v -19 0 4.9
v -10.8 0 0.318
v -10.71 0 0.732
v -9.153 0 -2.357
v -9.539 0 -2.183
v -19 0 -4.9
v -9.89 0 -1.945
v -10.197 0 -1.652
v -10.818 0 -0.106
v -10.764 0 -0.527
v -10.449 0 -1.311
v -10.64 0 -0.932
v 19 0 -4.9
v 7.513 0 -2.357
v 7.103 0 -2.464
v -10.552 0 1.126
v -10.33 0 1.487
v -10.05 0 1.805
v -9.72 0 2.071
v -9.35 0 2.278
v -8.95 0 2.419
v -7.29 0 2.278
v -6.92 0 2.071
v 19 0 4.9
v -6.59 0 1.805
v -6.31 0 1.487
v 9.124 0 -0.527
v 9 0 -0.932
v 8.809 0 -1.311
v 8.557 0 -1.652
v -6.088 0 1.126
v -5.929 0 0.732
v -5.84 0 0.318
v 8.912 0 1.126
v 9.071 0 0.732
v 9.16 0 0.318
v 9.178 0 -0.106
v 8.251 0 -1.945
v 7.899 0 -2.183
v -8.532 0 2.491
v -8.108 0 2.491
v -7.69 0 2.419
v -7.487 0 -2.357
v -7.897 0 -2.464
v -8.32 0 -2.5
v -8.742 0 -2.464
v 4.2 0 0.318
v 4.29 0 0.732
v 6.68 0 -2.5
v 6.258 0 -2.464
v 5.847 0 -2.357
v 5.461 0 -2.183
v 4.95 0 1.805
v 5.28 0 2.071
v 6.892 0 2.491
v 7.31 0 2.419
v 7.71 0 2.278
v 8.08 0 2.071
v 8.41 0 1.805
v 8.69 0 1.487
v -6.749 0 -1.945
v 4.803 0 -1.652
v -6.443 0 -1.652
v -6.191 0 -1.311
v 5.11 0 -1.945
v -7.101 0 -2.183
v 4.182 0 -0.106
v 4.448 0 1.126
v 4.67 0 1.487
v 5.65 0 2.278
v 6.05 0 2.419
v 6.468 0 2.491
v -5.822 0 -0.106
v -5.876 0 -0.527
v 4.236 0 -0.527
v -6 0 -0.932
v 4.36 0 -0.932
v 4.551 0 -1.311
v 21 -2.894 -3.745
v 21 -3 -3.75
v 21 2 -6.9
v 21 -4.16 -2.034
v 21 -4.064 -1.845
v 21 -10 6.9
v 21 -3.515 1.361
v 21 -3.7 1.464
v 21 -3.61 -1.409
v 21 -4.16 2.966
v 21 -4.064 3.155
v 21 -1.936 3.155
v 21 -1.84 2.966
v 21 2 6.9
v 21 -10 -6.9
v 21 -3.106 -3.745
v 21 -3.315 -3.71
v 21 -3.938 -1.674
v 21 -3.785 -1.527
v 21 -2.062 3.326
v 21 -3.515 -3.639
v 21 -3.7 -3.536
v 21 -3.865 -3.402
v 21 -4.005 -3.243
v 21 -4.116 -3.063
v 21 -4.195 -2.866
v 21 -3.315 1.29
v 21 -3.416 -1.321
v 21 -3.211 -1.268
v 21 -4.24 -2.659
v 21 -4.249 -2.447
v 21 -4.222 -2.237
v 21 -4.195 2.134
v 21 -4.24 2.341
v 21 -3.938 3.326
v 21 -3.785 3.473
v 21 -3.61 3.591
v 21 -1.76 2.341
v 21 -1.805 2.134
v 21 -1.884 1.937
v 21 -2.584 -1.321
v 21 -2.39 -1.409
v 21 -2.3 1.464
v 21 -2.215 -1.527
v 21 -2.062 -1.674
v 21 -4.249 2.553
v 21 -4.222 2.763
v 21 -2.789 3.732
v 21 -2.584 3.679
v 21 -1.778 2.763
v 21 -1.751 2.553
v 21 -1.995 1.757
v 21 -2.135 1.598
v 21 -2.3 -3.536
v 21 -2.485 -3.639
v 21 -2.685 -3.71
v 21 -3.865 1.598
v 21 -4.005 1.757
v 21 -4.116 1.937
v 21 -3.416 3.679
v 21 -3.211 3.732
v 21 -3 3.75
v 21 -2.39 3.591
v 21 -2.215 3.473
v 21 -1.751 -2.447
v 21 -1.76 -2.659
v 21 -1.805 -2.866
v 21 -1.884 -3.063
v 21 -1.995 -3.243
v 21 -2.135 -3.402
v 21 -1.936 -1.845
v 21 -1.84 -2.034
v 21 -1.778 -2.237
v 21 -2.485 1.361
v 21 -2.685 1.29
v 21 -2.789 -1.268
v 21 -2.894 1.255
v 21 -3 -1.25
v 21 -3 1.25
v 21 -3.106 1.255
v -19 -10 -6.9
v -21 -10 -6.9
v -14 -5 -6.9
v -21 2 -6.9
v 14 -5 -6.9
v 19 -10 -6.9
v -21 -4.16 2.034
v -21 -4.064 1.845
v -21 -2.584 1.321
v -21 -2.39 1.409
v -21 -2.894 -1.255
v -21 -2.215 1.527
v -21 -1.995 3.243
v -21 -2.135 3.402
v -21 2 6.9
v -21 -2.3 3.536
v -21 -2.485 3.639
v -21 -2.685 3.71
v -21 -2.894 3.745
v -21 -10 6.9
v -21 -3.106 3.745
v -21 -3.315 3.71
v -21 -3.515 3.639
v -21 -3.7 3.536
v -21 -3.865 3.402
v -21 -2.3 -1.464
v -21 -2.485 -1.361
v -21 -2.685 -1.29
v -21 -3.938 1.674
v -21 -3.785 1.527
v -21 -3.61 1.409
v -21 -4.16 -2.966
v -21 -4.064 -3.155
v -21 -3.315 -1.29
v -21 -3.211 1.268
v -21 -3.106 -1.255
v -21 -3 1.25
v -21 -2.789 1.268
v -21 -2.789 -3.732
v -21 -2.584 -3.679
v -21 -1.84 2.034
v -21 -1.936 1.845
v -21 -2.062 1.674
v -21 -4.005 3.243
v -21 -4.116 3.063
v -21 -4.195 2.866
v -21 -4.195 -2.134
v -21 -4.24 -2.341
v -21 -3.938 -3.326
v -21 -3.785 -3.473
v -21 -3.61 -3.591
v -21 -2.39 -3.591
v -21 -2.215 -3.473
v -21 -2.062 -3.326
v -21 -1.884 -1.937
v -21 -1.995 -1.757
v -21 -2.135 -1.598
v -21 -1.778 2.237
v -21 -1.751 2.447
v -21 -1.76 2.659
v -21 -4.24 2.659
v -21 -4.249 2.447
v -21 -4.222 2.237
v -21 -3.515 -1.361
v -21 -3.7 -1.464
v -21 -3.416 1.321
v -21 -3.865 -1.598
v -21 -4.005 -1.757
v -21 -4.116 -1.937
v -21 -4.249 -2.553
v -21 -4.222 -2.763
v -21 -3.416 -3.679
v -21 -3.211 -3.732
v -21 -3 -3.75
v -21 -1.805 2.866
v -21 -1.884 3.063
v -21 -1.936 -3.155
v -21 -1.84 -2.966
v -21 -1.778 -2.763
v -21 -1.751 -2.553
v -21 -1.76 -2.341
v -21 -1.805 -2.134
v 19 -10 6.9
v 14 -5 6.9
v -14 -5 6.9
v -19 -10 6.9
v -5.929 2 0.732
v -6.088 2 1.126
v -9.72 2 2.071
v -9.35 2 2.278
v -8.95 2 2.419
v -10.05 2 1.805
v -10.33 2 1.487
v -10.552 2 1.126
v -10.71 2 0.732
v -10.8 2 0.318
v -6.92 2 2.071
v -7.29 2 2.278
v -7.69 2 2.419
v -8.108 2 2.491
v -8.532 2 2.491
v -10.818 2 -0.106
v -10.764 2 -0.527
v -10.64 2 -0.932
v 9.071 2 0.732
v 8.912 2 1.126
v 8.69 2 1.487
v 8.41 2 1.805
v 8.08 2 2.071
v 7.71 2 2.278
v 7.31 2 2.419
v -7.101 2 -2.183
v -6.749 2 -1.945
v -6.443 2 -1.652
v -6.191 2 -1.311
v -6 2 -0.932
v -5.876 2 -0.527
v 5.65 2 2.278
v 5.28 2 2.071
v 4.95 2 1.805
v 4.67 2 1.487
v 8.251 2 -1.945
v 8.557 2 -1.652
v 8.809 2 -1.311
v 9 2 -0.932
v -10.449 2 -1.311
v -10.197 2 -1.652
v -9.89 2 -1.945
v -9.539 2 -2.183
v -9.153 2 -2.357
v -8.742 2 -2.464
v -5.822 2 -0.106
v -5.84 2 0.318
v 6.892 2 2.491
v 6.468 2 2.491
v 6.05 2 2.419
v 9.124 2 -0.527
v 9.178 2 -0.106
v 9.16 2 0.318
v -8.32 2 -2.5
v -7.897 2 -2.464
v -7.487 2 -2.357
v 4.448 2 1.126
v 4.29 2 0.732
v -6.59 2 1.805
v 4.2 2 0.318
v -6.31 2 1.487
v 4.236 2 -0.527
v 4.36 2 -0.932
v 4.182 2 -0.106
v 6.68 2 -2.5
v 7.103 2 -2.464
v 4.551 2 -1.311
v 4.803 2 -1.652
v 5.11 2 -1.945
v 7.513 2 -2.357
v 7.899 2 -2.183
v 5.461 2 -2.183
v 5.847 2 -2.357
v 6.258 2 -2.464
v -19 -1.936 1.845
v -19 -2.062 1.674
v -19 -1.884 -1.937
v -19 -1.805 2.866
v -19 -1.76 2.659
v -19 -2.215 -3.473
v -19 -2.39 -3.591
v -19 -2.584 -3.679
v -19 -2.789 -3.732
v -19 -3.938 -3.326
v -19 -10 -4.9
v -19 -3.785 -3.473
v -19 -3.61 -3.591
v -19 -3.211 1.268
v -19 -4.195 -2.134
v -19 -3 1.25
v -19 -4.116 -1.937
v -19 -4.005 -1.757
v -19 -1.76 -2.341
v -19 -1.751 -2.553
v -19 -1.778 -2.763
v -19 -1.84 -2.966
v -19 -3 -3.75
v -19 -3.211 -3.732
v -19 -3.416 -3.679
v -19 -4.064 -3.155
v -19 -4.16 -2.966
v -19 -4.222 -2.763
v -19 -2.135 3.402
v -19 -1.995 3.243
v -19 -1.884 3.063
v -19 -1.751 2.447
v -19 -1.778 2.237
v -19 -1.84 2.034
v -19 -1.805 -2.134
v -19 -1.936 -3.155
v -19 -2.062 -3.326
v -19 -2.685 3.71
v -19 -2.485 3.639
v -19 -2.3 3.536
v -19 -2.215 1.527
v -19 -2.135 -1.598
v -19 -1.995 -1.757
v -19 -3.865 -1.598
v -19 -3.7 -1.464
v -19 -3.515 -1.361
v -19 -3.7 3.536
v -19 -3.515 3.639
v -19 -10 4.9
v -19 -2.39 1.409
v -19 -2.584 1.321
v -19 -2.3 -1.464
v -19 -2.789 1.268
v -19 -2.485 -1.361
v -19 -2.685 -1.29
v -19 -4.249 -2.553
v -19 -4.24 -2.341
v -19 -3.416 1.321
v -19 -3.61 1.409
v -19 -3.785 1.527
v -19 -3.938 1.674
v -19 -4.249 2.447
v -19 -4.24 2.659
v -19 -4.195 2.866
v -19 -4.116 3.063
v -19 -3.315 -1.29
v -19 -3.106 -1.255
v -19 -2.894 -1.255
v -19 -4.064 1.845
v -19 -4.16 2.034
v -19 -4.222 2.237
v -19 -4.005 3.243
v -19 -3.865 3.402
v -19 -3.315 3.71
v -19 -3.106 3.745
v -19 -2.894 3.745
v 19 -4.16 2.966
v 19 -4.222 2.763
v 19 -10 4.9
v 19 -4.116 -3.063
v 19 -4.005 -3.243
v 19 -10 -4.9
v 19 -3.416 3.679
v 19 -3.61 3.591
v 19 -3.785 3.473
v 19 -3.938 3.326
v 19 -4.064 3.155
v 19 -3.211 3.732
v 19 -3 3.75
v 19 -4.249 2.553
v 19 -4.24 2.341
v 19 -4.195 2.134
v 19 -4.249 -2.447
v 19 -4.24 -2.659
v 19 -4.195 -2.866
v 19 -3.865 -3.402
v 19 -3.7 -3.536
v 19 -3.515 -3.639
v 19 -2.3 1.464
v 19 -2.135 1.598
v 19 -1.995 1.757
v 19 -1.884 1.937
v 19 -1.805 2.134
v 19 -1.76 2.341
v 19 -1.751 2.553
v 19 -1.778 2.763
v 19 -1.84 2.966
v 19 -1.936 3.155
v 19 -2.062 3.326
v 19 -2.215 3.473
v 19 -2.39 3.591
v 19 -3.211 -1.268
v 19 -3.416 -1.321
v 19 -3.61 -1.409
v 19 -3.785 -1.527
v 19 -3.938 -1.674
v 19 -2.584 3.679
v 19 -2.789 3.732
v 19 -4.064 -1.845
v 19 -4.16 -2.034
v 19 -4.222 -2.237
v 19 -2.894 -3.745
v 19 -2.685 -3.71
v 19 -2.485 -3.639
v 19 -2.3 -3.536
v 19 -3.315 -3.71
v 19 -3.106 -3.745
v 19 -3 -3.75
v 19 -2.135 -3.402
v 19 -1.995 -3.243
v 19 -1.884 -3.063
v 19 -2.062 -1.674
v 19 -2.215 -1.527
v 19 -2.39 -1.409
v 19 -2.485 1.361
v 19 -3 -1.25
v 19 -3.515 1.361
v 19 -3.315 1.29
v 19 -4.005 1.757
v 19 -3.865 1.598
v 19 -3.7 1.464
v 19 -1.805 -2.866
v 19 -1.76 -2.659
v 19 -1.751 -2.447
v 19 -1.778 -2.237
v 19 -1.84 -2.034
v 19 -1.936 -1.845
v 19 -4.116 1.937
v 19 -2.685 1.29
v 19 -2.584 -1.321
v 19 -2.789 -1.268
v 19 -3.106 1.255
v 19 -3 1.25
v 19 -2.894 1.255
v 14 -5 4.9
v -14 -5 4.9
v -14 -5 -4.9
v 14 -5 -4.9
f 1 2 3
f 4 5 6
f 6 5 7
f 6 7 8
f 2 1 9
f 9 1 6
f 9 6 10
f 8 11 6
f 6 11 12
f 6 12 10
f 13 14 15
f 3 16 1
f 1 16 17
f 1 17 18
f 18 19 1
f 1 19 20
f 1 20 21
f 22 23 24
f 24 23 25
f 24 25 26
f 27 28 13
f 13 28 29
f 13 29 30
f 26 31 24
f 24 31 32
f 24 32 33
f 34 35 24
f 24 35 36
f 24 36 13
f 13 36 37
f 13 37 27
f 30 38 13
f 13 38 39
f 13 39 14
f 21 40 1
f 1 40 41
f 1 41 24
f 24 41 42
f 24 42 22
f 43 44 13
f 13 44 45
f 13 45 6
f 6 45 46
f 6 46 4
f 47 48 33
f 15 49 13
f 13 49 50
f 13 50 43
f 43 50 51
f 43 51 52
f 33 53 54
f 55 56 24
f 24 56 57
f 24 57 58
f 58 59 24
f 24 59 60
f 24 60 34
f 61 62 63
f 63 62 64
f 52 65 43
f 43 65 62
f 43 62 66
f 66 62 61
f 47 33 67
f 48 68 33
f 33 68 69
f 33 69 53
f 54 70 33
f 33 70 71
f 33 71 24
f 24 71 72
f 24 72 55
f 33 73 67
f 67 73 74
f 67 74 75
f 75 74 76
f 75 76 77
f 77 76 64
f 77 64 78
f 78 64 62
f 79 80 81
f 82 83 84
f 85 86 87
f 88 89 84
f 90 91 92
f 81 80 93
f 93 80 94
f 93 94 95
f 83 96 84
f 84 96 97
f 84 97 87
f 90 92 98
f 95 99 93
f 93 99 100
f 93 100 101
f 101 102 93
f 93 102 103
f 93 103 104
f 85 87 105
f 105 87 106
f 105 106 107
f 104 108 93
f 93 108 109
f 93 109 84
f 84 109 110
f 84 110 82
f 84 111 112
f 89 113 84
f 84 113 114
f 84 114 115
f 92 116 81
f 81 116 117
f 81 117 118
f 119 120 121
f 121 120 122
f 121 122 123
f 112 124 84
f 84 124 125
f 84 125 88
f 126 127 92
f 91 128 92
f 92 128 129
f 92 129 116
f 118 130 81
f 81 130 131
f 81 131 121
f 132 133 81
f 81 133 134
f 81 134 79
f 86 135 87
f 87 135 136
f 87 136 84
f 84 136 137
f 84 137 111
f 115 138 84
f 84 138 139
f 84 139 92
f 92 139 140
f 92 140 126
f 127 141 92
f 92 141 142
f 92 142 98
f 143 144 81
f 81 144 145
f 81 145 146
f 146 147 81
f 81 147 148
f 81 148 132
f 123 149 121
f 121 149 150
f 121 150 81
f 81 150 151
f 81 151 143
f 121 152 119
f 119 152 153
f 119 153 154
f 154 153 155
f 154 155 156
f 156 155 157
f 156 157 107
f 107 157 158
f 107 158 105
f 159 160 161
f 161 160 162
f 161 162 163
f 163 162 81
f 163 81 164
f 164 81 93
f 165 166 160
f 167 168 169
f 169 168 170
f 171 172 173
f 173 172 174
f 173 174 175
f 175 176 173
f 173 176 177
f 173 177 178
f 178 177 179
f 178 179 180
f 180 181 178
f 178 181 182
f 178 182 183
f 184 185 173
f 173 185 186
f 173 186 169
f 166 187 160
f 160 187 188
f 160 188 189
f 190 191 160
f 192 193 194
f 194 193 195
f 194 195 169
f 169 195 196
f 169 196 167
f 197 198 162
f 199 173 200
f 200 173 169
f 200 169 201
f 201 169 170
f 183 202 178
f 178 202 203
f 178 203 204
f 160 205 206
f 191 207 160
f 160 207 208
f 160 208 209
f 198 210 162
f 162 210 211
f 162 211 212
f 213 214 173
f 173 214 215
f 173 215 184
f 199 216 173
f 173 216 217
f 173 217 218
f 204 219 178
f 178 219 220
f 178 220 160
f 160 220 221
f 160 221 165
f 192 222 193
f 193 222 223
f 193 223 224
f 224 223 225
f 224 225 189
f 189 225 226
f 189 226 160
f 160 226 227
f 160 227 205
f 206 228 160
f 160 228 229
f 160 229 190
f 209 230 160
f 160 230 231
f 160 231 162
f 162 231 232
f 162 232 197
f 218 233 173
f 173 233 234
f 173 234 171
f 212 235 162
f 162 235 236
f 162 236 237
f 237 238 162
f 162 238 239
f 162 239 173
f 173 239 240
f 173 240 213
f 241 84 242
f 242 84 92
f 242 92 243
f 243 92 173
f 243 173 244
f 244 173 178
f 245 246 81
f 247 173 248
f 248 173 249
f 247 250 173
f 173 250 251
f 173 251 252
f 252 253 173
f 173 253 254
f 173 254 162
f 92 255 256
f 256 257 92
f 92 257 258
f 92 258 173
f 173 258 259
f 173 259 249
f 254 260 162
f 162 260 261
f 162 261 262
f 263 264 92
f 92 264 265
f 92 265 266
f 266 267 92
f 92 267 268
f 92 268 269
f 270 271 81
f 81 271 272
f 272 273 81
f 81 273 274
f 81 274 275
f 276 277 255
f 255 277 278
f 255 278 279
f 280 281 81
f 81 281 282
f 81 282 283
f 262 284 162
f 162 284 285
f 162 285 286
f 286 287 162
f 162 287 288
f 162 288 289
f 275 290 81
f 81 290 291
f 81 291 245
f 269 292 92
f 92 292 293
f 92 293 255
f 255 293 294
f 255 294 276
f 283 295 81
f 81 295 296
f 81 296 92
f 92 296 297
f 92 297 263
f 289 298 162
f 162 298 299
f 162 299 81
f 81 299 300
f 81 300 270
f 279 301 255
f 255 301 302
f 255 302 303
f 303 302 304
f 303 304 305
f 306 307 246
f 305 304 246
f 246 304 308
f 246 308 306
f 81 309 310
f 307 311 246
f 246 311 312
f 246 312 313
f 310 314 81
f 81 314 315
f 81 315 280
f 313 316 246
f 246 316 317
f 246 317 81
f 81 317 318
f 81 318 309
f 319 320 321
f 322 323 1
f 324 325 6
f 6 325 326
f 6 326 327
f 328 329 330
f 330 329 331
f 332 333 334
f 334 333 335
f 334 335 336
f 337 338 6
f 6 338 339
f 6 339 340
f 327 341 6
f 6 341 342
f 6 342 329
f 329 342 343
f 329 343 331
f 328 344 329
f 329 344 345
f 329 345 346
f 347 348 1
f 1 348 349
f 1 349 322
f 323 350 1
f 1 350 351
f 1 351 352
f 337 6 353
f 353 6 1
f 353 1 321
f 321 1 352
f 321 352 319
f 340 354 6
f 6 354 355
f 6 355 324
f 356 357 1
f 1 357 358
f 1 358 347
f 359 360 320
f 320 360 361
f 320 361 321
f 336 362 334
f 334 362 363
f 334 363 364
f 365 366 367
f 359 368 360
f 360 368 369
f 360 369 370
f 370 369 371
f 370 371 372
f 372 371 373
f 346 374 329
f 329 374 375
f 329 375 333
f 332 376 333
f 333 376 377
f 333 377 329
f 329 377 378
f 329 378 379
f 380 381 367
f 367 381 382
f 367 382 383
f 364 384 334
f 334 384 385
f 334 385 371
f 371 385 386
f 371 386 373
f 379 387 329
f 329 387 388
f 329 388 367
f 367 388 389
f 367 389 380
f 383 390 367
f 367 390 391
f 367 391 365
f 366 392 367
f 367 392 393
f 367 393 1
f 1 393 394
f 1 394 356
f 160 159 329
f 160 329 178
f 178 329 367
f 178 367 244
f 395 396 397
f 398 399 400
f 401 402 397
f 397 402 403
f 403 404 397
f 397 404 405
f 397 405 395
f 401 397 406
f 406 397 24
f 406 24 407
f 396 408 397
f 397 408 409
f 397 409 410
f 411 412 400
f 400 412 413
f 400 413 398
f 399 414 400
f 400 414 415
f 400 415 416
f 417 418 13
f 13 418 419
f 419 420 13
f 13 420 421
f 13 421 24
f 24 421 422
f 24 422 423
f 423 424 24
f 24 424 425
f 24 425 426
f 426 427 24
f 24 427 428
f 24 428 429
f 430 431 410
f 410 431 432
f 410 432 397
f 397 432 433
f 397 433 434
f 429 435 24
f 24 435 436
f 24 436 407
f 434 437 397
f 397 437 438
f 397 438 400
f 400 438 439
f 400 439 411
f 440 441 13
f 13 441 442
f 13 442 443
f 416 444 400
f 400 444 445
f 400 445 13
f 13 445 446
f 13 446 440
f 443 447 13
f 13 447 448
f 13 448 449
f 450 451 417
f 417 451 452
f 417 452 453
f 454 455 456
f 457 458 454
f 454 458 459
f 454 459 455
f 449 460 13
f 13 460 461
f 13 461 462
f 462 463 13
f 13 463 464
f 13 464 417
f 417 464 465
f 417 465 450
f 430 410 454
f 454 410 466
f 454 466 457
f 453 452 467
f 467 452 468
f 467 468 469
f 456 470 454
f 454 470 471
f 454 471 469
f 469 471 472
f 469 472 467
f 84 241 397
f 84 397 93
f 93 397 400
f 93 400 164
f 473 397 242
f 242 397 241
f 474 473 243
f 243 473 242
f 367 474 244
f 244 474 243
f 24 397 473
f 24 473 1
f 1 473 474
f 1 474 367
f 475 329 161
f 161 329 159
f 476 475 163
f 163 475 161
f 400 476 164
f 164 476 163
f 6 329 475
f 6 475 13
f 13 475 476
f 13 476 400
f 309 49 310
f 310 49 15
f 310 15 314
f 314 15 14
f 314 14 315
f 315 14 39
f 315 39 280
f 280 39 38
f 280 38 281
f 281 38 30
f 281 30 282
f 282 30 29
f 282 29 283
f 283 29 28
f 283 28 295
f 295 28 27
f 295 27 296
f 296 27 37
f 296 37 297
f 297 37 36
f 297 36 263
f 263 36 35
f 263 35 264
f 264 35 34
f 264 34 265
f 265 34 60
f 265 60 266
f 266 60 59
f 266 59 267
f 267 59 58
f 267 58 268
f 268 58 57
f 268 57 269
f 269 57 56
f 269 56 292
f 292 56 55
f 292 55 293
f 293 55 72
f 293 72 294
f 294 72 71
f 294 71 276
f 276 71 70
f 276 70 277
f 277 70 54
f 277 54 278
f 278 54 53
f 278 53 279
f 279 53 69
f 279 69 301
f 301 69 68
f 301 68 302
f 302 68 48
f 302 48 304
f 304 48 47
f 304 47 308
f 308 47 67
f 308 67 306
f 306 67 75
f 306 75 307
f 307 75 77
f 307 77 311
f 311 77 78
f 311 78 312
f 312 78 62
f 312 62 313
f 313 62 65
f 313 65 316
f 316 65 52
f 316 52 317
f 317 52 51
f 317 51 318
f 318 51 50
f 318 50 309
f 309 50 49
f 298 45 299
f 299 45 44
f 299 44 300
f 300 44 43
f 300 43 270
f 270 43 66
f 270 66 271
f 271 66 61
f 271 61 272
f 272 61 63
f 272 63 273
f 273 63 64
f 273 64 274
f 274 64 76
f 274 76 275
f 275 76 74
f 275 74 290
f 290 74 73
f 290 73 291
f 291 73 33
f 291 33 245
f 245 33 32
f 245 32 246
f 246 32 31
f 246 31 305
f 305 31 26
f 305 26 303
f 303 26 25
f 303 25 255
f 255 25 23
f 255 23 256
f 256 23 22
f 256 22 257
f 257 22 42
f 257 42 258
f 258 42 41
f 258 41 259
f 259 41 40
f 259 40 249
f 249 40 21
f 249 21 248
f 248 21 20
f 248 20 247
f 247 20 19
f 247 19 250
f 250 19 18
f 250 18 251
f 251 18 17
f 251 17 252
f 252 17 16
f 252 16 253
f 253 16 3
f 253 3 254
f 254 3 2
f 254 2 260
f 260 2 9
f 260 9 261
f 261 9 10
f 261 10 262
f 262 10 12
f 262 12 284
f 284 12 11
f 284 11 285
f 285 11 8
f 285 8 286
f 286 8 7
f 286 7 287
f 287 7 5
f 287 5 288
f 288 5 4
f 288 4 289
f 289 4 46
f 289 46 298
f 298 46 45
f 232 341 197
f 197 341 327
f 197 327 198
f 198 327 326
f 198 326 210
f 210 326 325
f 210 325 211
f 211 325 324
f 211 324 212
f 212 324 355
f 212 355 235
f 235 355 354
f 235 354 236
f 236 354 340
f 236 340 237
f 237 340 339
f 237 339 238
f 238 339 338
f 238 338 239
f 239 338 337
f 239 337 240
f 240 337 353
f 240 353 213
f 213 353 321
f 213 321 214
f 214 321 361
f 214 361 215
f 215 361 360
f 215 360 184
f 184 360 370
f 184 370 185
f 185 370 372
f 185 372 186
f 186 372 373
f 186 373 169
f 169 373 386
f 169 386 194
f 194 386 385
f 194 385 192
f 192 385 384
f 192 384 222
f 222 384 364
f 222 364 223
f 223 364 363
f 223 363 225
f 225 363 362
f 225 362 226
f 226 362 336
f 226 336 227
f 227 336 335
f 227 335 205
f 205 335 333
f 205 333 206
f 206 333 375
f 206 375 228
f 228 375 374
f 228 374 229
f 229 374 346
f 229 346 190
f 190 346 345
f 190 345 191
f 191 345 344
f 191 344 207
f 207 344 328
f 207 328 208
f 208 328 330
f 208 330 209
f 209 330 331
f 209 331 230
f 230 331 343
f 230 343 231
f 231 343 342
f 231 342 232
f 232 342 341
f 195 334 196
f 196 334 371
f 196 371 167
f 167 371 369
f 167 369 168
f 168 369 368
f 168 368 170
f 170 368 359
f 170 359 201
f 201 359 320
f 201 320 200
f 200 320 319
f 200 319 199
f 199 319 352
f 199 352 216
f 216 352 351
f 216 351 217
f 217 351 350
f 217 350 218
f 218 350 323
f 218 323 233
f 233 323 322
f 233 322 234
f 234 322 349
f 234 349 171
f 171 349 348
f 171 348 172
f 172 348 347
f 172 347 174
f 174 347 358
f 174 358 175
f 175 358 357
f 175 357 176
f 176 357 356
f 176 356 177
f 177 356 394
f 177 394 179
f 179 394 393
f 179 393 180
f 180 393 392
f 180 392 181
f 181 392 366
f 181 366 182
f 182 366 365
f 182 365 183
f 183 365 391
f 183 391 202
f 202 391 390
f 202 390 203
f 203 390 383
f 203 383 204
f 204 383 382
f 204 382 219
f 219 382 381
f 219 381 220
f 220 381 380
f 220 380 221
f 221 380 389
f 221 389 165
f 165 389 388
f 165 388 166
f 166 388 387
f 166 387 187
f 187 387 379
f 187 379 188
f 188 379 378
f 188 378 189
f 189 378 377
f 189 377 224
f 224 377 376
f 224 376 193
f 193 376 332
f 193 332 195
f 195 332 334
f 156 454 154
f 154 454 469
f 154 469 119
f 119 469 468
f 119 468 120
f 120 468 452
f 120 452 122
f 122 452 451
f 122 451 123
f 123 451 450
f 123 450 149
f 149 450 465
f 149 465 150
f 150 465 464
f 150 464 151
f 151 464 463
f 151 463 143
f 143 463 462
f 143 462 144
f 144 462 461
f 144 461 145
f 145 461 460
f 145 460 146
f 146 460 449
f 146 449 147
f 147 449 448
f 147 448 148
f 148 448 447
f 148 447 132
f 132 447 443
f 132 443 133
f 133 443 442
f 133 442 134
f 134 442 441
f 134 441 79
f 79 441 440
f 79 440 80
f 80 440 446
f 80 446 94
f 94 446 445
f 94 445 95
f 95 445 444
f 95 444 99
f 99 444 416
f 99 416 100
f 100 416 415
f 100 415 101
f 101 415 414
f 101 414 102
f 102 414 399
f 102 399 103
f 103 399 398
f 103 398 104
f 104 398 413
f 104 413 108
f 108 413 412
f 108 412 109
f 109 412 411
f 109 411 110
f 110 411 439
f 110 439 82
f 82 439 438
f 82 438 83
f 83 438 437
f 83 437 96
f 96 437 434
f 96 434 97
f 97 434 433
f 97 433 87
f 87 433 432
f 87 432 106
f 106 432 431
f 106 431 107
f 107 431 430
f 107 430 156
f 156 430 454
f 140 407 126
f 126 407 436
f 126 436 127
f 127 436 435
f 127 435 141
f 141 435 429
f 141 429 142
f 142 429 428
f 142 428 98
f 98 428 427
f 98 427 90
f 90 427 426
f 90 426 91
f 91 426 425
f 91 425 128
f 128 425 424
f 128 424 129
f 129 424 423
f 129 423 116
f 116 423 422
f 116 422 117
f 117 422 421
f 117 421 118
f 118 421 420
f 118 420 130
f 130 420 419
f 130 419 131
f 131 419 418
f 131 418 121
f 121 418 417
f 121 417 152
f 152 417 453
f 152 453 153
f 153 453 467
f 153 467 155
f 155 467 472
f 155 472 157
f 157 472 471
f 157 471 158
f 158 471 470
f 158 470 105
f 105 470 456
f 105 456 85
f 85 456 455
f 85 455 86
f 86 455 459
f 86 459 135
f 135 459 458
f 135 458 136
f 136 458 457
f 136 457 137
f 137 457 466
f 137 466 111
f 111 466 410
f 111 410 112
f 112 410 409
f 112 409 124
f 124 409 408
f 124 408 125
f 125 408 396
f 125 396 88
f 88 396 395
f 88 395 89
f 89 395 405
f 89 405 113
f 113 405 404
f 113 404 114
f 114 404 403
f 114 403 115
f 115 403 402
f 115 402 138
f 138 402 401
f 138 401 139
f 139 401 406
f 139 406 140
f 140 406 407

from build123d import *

# Parameters (mm, degrees)
SKETCH2_W           = 42
SKETCH2_H           = 13.8
BOSS_EXTRUDE1_DEPTH = 2
SKETCH3_W           = 2
SKETCH3_H           = 13.8
BOSS_EXTRUDE2_DEPTH = 10
BOSS_EXTRUDE3_DEPTH = 2
SKETCH5_R           = 2.5
CUT_EXTRUDE1_DEPTH  = 2
SKETCH6_R           = 1.25
CUT_EXTRUDE2_DEPTH  = 2


with BuildPart() as part:
    # Sketch2 → Boss-Extrude1 (new body)
    with BuildSketch(Plane(origin=(0, 0, 0), x_dir=(1, 0, 0), z_dir=(0, 1, 0))):
        Rectangle(SKETCH2_W, SKETCH2_H)
    extrude(amount=BOSS_EXTRUDE1_DEPTH)

    # Sketch3 → Boss-Extrude2 (add)
    with BuildSketch(Plane.XZ):
        with Locations((-20, 0)):
            Rectangle(SKETCH3_W, SKETCH3_H)
        with Locations((20, 0)):
            Rectangle(SKETCH3_W, SKETCH3_H)
    extrude(amount=BOSS_EXTRUDE2_DEPTH)

    # Sketch4 → Boss-Extrude3 (add)
    with BuildSketch(Plane.XY.offset(6.9)):
        Polygon((-19, 0), (19, 0), (19, -10), (14, -5), (-14, -5), (-19, -10), align=None)
    boss_extrude3 = extrude(amount=-BOSS_EXTRUDE3_DEPTH)

    # Mirror1: Boss-Extrude3 across plane
    add(boss_extrude3.mirror(Plane.XY))

    # Sketch5 → Cut-Extrude1 (cut)
    with BuildSketch(Plane.XZ):
        with Locations((-8.319906625, 0)):
            Circle(SKETCH5_R)
        with Locations((6.680093375, 0)):
            Circle(SKETCH5_R)
    extrude(amount=-CUT_EXTRUDE1_DEPTH, mode=Mode.SUBTRACT)

    # Sketch6 → Cut-Extrude2 (cut)
    with BuildSketch(Plane(origin=(-19, 0, 0), x_dir=(0, 0, -1), z_dir=(1, 0, 0))):
        with Locations((-2.5, -3)):
            Circle(SKETCH6_R)
        with Locations((2.5, -3)):
            Circle(SKETCH6_R)
    cut_extrude2 = extrude(amount=-CUT_EXTRUDE2_DEPTH, mode=Mode.SUBTRACT)

    # Mirror2: Cut-Extrude2 across plane
    add(cut_extrude2.mirror(Plane(origin=(0, 0, 0), x_dir=(0, 0, 1), z_dir=(1, 0, 0))), mode=Mode.SUBTRACT)


solid = part.part
